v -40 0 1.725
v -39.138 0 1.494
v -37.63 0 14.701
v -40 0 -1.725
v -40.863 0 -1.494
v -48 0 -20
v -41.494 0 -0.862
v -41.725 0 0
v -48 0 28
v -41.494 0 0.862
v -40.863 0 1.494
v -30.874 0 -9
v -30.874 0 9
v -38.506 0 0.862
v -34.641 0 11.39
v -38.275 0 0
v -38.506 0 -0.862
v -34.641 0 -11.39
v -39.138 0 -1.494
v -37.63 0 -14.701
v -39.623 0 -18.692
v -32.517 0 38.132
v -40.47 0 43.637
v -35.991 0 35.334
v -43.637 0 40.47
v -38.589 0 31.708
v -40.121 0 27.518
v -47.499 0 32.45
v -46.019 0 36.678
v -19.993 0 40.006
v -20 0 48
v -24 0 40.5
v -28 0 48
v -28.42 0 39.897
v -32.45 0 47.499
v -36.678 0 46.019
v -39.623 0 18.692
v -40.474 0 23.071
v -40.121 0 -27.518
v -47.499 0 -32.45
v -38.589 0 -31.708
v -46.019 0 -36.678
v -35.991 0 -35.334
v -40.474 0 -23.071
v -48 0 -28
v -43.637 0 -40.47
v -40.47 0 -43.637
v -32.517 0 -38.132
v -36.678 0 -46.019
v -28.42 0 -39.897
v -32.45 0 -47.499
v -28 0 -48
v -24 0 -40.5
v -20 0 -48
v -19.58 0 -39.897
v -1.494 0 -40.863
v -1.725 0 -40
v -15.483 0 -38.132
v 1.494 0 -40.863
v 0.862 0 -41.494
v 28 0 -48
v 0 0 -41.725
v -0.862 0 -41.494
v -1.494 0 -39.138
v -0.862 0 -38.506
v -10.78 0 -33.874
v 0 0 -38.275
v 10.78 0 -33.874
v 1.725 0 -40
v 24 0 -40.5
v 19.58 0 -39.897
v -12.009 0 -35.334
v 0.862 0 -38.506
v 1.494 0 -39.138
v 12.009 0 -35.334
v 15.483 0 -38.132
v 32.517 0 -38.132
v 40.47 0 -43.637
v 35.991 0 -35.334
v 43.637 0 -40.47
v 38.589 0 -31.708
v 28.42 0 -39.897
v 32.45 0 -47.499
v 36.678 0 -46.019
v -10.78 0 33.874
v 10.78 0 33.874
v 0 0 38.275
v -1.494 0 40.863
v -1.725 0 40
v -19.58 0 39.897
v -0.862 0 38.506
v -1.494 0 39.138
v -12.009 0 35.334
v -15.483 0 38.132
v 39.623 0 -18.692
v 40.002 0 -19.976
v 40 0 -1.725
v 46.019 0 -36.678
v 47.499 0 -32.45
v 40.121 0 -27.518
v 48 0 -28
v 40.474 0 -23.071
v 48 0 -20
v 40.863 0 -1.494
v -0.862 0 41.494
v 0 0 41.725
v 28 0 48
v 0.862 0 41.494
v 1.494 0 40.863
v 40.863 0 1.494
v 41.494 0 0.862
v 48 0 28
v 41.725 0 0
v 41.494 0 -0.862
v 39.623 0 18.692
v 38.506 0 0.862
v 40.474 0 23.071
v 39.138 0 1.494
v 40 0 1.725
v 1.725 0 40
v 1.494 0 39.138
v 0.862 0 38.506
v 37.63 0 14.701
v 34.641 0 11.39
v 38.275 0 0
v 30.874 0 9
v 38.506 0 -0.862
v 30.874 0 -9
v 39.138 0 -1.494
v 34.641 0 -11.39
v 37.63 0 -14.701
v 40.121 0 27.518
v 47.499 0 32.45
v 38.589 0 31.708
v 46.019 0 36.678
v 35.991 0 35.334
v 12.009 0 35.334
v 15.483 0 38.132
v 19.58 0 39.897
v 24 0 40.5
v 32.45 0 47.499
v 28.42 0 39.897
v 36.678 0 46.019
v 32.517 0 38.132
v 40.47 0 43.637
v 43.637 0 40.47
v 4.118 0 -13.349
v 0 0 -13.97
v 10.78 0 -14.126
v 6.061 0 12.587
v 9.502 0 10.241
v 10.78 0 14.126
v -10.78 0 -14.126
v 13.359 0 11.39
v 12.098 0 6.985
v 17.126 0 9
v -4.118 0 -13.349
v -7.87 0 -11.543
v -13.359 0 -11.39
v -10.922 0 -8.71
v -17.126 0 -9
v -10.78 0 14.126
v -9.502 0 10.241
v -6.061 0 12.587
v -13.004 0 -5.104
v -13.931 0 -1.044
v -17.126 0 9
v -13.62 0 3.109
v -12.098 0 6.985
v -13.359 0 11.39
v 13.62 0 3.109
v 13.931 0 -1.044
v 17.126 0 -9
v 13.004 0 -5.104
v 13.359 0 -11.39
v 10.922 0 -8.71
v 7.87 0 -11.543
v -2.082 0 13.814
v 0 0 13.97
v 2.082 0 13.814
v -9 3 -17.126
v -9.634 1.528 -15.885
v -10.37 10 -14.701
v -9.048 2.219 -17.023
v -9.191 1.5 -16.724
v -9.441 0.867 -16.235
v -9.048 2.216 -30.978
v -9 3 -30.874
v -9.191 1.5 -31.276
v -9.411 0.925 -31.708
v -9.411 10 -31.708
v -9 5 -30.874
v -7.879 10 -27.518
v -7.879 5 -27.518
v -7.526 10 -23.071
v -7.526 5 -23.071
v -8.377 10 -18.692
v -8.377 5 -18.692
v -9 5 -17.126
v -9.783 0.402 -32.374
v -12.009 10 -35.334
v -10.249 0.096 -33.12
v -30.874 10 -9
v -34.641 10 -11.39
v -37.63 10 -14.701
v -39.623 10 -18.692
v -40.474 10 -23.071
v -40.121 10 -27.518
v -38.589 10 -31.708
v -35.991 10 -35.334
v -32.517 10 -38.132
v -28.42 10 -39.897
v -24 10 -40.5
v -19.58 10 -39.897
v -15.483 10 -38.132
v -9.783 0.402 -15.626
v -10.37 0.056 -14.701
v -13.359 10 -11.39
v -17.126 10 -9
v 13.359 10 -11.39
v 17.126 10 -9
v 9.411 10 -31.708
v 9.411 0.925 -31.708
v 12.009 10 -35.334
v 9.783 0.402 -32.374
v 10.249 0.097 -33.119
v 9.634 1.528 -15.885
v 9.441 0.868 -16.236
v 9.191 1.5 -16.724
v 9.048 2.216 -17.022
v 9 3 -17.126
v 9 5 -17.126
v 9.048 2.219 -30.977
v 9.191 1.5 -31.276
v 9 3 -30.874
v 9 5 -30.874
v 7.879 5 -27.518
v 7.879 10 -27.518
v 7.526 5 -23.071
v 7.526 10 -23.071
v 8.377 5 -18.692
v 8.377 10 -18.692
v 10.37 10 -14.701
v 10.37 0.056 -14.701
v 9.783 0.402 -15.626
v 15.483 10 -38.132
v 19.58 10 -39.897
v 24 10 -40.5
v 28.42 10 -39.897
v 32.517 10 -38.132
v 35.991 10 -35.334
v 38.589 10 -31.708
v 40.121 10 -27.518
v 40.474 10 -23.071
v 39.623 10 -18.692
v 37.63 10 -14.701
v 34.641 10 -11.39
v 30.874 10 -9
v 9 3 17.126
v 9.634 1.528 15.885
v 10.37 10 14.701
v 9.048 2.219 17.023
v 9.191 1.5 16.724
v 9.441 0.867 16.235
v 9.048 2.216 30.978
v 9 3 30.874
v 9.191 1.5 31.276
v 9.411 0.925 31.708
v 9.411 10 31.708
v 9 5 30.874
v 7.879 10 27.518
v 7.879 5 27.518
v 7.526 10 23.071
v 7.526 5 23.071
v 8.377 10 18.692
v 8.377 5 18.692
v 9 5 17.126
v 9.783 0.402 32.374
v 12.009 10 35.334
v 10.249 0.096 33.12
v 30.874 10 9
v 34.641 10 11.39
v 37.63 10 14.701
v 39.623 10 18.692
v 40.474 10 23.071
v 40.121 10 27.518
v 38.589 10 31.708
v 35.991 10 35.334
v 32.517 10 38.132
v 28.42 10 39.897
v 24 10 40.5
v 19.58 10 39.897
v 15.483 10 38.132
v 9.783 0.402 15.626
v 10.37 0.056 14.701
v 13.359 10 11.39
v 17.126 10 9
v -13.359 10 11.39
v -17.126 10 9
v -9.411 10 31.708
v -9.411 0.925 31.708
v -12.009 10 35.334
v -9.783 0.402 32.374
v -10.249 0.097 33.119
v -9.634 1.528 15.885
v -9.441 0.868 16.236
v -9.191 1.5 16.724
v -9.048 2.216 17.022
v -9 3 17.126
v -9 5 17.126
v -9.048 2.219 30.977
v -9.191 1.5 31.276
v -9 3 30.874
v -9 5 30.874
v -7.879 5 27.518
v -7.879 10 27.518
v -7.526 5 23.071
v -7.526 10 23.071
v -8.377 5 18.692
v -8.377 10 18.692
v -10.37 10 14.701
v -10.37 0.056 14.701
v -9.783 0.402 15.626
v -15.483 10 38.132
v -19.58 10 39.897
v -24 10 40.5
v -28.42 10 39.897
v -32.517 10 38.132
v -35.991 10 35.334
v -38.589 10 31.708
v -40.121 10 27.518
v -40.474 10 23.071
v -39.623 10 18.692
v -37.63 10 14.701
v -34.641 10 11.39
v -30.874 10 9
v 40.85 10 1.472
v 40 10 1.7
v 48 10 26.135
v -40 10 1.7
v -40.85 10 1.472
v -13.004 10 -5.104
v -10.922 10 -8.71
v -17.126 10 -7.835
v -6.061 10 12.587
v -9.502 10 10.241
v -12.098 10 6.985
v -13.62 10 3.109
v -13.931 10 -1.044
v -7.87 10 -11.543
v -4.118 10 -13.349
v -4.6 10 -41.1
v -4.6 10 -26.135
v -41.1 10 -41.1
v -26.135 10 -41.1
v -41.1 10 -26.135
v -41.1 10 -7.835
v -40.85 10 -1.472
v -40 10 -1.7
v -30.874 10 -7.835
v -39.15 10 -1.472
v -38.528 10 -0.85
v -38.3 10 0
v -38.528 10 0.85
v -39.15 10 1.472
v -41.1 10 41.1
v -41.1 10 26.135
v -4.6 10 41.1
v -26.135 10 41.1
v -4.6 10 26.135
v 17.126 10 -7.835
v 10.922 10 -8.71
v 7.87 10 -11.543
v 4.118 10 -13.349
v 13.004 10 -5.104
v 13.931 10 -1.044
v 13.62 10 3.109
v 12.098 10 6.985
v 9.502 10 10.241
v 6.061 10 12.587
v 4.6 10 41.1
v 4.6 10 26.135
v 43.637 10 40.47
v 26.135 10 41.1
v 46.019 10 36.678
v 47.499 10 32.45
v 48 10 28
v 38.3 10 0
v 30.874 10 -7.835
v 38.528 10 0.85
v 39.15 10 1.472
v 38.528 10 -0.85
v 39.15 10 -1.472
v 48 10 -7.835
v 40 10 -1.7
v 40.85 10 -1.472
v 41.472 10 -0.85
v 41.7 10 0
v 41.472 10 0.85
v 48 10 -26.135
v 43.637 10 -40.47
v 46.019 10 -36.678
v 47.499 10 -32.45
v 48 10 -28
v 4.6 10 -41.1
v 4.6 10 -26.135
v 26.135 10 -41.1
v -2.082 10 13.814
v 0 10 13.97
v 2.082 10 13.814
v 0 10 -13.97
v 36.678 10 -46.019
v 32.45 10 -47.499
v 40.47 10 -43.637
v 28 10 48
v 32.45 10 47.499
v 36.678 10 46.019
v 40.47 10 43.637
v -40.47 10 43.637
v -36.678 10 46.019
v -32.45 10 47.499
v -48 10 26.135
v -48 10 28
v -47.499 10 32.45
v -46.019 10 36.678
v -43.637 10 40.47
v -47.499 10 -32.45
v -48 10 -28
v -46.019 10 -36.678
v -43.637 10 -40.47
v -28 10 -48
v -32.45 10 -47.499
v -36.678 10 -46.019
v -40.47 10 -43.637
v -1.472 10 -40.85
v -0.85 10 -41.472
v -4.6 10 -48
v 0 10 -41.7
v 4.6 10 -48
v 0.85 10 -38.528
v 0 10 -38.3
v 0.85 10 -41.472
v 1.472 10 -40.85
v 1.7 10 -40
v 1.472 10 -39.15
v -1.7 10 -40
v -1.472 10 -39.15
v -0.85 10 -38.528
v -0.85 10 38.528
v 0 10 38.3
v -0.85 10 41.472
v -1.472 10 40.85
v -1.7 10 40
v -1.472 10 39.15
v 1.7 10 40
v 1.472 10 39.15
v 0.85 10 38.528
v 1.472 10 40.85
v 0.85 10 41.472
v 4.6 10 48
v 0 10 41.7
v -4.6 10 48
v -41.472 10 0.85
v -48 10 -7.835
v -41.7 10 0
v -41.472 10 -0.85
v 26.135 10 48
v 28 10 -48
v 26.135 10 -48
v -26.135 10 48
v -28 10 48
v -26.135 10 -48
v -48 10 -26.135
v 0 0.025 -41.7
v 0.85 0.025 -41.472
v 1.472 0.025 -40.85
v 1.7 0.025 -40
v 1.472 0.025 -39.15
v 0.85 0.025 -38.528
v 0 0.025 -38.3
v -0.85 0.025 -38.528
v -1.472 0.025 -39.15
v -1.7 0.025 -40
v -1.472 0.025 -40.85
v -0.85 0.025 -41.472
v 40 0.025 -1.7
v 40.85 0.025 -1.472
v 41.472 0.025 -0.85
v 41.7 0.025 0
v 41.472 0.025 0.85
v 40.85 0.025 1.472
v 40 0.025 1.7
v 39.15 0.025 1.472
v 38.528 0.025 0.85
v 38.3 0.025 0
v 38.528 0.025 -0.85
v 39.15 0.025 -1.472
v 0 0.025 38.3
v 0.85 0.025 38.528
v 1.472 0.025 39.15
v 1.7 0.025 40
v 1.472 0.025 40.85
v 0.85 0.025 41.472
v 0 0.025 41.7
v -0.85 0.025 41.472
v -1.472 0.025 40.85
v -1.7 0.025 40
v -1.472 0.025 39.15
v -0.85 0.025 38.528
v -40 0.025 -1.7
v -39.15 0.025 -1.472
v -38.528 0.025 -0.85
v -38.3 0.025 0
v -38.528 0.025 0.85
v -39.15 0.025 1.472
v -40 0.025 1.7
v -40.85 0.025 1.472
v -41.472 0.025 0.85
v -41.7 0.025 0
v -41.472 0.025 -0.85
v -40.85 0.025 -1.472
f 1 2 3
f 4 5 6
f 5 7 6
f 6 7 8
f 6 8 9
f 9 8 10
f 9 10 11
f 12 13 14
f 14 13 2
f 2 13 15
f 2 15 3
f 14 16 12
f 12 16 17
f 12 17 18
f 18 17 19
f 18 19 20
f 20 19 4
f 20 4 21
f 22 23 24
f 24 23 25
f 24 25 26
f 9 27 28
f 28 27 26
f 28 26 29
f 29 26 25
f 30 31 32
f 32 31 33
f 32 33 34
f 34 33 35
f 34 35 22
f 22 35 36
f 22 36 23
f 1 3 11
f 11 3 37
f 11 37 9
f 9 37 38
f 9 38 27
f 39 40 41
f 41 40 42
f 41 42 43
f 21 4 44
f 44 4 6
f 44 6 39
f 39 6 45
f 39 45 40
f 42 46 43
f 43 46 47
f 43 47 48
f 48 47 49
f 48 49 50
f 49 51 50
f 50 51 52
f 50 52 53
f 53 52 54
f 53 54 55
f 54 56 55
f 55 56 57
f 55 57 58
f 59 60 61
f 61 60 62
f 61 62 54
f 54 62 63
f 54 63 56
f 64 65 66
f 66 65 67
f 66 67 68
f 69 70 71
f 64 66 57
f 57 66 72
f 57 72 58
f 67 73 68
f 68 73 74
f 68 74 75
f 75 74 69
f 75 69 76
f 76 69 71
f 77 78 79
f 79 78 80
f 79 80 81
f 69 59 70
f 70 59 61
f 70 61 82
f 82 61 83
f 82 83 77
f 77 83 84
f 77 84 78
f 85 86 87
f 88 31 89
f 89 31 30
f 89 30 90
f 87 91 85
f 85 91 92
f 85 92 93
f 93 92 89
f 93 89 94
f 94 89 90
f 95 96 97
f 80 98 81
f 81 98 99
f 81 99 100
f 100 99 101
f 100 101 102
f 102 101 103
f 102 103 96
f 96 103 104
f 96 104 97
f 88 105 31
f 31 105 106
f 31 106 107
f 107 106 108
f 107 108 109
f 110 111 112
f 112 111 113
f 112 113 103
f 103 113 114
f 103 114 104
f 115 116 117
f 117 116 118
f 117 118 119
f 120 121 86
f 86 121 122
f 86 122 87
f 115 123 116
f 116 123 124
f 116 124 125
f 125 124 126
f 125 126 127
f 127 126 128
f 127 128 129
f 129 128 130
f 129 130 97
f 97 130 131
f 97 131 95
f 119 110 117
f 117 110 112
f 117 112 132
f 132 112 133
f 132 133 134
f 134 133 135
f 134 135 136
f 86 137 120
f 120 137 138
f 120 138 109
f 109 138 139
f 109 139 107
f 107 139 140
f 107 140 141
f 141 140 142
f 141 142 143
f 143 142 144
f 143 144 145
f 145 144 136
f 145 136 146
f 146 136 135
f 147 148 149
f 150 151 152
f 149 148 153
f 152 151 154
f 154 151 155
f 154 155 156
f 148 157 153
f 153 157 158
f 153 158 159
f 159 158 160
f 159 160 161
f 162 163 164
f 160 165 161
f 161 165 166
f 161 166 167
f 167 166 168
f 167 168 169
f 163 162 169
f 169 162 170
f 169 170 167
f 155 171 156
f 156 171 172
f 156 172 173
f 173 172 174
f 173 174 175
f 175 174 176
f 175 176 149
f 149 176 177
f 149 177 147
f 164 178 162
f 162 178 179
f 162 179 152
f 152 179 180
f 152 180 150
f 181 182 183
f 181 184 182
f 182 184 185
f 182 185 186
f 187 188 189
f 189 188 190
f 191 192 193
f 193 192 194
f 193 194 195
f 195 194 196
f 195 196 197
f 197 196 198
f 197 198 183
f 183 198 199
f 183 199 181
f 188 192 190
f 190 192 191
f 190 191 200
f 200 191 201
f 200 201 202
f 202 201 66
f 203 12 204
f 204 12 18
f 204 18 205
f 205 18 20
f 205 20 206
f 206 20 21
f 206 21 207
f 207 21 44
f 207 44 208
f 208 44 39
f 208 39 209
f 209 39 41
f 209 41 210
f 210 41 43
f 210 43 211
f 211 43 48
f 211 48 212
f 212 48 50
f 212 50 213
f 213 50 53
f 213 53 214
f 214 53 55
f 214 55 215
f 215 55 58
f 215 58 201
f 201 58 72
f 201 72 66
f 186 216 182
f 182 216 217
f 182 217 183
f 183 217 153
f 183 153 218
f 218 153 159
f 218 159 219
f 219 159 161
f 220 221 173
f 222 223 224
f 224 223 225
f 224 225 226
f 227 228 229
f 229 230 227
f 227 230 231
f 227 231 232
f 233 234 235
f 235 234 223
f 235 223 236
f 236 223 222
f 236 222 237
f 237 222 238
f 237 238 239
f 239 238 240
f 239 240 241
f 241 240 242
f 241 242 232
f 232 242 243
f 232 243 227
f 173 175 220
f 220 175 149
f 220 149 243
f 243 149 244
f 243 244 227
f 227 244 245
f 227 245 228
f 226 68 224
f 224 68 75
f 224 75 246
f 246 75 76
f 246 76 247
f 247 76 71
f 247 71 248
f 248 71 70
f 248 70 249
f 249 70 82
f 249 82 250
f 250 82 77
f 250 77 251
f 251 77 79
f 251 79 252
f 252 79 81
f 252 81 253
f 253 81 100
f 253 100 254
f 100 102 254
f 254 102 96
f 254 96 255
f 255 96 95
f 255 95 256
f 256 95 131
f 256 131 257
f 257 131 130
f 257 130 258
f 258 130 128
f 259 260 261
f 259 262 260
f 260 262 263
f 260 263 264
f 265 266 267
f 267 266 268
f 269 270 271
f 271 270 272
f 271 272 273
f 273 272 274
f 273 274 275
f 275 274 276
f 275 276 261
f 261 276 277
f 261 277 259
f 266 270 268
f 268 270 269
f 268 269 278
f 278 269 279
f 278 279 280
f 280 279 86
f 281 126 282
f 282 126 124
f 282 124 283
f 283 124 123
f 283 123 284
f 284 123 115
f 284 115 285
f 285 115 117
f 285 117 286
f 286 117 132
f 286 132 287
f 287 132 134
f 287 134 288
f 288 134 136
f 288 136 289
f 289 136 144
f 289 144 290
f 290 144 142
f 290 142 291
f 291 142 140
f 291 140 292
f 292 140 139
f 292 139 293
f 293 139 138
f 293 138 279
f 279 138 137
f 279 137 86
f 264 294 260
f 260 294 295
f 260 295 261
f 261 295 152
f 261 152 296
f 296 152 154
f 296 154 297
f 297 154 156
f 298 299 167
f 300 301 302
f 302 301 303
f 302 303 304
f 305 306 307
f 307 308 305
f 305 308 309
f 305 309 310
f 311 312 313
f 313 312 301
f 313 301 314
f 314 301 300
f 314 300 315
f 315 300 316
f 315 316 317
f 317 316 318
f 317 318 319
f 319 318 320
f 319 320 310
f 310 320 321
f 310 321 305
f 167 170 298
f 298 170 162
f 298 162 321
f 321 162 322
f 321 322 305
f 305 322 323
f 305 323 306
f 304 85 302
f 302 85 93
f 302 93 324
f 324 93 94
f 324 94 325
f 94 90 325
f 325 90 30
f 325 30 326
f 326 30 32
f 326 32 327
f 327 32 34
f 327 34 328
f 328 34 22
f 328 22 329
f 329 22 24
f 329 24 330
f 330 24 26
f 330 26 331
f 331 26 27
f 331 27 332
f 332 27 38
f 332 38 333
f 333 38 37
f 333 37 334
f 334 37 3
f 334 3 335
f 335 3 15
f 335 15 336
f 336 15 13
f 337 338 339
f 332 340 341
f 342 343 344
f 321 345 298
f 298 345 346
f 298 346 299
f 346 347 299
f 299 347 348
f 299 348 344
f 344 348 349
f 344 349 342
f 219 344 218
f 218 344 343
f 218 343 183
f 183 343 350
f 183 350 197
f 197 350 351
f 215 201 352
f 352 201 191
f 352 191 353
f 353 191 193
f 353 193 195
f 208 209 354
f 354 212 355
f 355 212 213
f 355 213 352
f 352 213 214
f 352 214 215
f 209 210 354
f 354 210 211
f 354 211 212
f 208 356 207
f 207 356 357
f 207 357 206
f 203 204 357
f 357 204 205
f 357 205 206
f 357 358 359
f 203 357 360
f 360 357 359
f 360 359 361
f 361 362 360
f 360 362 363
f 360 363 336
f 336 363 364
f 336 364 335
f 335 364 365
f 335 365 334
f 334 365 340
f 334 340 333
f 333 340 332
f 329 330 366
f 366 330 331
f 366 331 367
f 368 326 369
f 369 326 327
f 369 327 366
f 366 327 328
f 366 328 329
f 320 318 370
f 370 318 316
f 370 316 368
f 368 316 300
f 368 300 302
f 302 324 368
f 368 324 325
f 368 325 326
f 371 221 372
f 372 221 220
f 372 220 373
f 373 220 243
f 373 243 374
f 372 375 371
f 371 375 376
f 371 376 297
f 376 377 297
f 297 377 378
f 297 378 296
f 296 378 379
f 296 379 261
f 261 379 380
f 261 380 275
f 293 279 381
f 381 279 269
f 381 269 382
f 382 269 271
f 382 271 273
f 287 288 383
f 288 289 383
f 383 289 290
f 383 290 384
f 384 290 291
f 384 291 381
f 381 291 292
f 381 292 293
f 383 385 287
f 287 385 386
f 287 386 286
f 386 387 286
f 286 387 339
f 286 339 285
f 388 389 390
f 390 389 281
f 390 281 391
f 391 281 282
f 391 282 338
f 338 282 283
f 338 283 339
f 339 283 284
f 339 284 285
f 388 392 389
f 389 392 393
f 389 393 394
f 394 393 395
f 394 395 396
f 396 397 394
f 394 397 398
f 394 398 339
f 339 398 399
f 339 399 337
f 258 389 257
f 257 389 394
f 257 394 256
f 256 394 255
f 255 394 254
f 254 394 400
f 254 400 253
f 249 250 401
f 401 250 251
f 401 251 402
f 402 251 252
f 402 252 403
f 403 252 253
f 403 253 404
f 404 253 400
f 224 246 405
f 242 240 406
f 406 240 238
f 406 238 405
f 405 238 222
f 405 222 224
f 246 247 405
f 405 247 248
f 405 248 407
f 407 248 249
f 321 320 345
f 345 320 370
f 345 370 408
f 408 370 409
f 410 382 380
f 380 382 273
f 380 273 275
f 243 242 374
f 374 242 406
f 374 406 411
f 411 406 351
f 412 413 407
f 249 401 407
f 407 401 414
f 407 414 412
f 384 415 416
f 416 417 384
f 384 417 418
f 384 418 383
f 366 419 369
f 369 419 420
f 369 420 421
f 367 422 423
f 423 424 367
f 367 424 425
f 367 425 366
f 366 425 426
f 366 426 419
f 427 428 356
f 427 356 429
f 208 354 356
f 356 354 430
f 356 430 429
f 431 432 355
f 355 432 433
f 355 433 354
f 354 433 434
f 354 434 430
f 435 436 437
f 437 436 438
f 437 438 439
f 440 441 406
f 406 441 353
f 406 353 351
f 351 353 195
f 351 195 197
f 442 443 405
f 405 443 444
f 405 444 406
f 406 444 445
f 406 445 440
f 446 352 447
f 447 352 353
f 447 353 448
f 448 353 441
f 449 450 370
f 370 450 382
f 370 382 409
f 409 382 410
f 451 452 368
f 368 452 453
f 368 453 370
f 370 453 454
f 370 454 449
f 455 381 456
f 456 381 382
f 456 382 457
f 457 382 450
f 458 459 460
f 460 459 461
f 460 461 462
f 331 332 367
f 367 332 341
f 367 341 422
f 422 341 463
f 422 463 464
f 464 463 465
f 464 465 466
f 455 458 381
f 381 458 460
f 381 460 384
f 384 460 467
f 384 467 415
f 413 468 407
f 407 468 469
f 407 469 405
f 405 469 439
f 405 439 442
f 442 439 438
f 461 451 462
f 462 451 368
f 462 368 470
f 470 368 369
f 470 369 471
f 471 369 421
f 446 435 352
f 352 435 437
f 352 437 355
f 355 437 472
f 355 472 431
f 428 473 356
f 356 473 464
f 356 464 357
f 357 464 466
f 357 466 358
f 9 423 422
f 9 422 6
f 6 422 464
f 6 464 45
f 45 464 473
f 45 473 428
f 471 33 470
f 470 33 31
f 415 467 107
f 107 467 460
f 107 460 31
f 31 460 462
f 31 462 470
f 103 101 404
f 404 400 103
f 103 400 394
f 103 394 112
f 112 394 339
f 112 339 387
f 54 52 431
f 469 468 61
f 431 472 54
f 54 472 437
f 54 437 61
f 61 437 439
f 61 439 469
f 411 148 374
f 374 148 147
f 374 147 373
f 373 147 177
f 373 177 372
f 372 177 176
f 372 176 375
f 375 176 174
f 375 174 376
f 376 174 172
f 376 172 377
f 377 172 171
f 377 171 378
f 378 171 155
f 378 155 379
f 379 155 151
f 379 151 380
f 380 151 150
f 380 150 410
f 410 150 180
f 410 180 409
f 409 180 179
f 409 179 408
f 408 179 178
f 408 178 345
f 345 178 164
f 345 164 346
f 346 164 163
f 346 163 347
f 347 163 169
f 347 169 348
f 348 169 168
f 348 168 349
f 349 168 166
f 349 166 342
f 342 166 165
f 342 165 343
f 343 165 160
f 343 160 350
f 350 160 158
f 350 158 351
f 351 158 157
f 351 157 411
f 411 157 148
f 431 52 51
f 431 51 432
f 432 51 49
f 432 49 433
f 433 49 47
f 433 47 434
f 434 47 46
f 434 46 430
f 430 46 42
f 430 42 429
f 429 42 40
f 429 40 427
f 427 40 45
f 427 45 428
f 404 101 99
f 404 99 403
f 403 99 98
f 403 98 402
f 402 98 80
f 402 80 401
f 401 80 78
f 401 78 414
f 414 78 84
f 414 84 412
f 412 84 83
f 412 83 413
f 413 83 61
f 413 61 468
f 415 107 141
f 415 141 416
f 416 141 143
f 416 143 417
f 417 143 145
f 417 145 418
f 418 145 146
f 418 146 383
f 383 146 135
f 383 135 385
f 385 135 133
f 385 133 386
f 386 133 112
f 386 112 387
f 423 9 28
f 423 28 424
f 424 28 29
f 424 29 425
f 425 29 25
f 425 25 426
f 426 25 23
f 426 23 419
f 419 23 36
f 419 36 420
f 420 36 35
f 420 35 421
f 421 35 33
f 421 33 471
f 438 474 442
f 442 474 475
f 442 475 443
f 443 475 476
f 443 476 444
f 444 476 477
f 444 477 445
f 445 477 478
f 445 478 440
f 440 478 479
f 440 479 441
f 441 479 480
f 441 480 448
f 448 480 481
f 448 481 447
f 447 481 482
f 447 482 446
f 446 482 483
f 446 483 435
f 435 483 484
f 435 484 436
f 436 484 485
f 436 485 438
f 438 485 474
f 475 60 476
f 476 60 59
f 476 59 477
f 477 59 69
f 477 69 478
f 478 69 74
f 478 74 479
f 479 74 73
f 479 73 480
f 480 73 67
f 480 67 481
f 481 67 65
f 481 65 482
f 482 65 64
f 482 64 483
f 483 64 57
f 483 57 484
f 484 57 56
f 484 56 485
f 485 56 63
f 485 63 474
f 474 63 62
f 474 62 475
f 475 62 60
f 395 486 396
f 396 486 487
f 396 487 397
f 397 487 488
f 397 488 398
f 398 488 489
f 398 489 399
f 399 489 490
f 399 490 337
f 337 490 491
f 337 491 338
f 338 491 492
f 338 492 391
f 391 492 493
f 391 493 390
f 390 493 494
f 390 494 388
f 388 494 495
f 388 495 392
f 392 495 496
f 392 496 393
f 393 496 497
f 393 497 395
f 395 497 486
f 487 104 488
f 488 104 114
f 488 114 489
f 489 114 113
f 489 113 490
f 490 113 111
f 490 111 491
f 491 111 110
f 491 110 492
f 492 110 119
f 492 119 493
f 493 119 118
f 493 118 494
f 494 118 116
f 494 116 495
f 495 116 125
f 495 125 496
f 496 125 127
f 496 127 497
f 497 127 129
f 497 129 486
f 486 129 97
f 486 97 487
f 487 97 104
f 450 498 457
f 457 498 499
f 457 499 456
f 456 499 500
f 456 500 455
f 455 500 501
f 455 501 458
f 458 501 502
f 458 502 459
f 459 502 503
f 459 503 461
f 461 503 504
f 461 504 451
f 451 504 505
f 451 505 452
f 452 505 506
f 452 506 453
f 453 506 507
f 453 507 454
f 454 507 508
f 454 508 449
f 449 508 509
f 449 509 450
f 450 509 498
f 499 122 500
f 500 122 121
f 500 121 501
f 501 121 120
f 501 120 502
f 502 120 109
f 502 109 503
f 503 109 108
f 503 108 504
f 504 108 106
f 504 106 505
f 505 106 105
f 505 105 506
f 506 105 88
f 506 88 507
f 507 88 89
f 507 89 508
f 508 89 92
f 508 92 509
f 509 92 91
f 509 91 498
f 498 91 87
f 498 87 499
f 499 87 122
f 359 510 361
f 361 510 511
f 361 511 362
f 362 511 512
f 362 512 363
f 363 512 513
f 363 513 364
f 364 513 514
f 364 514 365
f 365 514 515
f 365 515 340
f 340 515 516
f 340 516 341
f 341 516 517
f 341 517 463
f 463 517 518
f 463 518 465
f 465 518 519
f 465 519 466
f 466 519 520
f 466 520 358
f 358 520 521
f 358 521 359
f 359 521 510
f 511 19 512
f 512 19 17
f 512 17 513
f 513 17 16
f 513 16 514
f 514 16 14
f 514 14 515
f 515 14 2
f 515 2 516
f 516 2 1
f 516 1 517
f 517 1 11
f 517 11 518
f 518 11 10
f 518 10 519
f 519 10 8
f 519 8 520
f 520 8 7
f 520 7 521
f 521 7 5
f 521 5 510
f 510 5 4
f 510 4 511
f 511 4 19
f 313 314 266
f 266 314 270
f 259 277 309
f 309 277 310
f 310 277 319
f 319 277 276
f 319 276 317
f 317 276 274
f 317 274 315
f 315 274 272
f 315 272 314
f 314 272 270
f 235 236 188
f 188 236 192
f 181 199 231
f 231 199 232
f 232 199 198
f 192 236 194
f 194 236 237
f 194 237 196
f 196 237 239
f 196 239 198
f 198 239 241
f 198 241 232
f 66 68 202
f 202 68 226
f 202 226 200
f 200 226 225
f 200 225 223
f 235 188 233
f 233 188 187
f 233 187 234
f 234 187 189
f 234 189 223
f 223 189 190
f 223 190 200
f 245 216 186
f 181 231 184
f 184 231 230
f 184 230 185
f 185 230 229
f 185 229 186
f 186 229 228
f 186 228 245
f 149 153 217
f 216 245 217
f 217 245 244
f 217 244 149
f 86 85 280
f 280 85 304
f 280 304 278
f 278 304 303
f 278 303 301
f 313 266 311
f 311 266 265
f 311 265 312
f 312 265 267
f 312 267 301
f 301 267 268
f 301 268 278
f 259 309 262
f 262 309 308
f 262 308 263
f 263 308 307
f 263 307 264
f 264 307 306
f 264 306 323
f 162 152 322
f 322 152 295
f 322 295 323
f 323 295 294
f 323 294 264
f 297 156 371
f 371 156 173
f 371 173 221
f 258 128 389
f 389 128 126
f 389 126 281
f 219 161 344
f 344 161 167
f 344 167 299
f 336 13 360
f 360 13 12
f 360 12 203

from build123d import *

# Parameters (mm, degrees)
SKETCH1_W                      = 96
SKETCH1_H                      = 96
SKETCH1_R                      = 16.5
SKETCH1_R_2                    = 13.97
BOSS_EXTRUDE1_DEPTH            = 10
FILLET1_R                      = 20
M3_CLEARANCE_HOLE1_D           = 3.4
M3_CLEARANCE_HOLE1_CSINK_D     = 3.45
M3_CLEARANCE_HOLE1_CSINK_ANGLE = 90
CUT_EXTRUDE1_DEPTH             = 5
FILLET2_R                      = 3
CUT_EXTRUDE2_DEPTH             = 69.614867208


with BuildPart() as part:
    # Sketch1 → Boss-Extrude1 (new body)
    with BuildSketch(Plane(origin=(0, 0, 0), x_dir=(1, 0, 0), z_dir=(0, 1, 0))):
        Rectangle(SKETCH1_W, SKETCH1_H)
        with Locations((-24, 24)):
            Circle(SKETCH1_R, mode=Mode.SUBTRACT)
        with Locations((24, 24)):
            Circle(SKETCH1_R, mode=Mode.SUBTRACT)
        with Locations((24, -24)):
            Circle(SKETCH1_R, mode=Mode.SUBTRACT)
        with Locations((-24, -24)):
            Circle(SKETCH1_R, mode=Mode.SUBTRACT)
        Circle(SKETCH1_R_2, mode=Mode.SUBTRACT)
    extrude(amount=BOSS_EXTRUDE1_DEPTH)

    # Fillet1
    fillet1_edges = [part.edges().sort_by_distance(p)[0] for p in [
        (-48, 5, -48),
        (48, 5, -48),
        (48, 5, 48),
        (-48, 5, 48),
    ]]
    fillet(fillet1_edges, radius=FILLET1_R)

    # M3 Clearance Hole1 (through all)
    with Locations(Plane(origin=(-40, 0, 0), x_dir=(0, 0, -1), z_dir=(0, -1, 0))):
        with Locations((0, 0), (-40, 40), (0, 80), (40, 40)):
            CounterSinkHole(M3_CLEARANCE_HOLE1_D / 2, M3_CLEARANCE_HOLE1_CSINK_D / 2, counter_sink_angle=M3_CLEARANCE_HOLE1_CSINK_ANGLE)

    # Sketch7 → Cut-Extrude1 (cut)
    with BuildSketch(Plane.XZ):
        with BuildLine():
            Line((-9, 17.126136458), (9, 17.126136458))
            ThreePointArc((9, 17.126136458), (7.5, 24), (9, 30.873863542))
            Line((9, 30.873863542), (-9, 30.873863542))
            ThreePointArc((-9, 30.873863542), (-7.5, 24), (-9, 17.126136458))
        make_face()
        with BuildLine():
            ThreePointArc((9, -30.873863542), (7.5, -24), (9, -17.126136458))
            Line((9, -17.126136458), (-9, -17.126136458))
            ThreePointArc((-9, -17.126136458), (-7.5, -24), (-9, -30.873863542))
            Line((-9, -30.873863542), (9, -30.873863542))
        make_face()
    extrude(amount=-CUT_EXTRUDE1_DEPTH, mode=Mode.SUBTRACT)

    # Fillet2
    fillet2_edges = [part.edges().sort_by_distance(p)[0] for p in [
        (0, 0, -30.873863542),
        (0, 0, -17.126136458),
        (0, 0, 30.873863542),
        (0, 0, 17.126136458),
    ]]
    fillet(fillet2_edges, radius=FILLET2_R)

    # Sketch7<3> → Cut-Extrude2 (cut, through all)
    with BuildSketch(Plane.XZ):
        with BuildLine():
            Line((30.873863542, -9), (30.873863542, 9))
            ThreePointArc((30.873863542, 9), (24, 7.5), (17.126136458, 9))
            Line((17.126136458, 9), (17.126136458, -9))
            ThreePointArc((17.126136458, -9), (24, -7.5), (30.873863542, -9))
        make_face()
        with BuildLine():
            Line((-17.126136458, -9), (-17.126136458, 9))
            ThreePointArc((-17.126136458, 9), (-24, 7.5), (-30.873863542, 9))
            Line((-30.873863542, 9), (-30.873863542, -9))
            ThreePointArc((-30.873863542, -9), (-24, -7.5), (-17.126136458, -9))
        make_face()
    extrude(amount=-CUT_EXTRUDE2_DEPTH, mode=Mode.SUBTRACT)


solid = part.part
